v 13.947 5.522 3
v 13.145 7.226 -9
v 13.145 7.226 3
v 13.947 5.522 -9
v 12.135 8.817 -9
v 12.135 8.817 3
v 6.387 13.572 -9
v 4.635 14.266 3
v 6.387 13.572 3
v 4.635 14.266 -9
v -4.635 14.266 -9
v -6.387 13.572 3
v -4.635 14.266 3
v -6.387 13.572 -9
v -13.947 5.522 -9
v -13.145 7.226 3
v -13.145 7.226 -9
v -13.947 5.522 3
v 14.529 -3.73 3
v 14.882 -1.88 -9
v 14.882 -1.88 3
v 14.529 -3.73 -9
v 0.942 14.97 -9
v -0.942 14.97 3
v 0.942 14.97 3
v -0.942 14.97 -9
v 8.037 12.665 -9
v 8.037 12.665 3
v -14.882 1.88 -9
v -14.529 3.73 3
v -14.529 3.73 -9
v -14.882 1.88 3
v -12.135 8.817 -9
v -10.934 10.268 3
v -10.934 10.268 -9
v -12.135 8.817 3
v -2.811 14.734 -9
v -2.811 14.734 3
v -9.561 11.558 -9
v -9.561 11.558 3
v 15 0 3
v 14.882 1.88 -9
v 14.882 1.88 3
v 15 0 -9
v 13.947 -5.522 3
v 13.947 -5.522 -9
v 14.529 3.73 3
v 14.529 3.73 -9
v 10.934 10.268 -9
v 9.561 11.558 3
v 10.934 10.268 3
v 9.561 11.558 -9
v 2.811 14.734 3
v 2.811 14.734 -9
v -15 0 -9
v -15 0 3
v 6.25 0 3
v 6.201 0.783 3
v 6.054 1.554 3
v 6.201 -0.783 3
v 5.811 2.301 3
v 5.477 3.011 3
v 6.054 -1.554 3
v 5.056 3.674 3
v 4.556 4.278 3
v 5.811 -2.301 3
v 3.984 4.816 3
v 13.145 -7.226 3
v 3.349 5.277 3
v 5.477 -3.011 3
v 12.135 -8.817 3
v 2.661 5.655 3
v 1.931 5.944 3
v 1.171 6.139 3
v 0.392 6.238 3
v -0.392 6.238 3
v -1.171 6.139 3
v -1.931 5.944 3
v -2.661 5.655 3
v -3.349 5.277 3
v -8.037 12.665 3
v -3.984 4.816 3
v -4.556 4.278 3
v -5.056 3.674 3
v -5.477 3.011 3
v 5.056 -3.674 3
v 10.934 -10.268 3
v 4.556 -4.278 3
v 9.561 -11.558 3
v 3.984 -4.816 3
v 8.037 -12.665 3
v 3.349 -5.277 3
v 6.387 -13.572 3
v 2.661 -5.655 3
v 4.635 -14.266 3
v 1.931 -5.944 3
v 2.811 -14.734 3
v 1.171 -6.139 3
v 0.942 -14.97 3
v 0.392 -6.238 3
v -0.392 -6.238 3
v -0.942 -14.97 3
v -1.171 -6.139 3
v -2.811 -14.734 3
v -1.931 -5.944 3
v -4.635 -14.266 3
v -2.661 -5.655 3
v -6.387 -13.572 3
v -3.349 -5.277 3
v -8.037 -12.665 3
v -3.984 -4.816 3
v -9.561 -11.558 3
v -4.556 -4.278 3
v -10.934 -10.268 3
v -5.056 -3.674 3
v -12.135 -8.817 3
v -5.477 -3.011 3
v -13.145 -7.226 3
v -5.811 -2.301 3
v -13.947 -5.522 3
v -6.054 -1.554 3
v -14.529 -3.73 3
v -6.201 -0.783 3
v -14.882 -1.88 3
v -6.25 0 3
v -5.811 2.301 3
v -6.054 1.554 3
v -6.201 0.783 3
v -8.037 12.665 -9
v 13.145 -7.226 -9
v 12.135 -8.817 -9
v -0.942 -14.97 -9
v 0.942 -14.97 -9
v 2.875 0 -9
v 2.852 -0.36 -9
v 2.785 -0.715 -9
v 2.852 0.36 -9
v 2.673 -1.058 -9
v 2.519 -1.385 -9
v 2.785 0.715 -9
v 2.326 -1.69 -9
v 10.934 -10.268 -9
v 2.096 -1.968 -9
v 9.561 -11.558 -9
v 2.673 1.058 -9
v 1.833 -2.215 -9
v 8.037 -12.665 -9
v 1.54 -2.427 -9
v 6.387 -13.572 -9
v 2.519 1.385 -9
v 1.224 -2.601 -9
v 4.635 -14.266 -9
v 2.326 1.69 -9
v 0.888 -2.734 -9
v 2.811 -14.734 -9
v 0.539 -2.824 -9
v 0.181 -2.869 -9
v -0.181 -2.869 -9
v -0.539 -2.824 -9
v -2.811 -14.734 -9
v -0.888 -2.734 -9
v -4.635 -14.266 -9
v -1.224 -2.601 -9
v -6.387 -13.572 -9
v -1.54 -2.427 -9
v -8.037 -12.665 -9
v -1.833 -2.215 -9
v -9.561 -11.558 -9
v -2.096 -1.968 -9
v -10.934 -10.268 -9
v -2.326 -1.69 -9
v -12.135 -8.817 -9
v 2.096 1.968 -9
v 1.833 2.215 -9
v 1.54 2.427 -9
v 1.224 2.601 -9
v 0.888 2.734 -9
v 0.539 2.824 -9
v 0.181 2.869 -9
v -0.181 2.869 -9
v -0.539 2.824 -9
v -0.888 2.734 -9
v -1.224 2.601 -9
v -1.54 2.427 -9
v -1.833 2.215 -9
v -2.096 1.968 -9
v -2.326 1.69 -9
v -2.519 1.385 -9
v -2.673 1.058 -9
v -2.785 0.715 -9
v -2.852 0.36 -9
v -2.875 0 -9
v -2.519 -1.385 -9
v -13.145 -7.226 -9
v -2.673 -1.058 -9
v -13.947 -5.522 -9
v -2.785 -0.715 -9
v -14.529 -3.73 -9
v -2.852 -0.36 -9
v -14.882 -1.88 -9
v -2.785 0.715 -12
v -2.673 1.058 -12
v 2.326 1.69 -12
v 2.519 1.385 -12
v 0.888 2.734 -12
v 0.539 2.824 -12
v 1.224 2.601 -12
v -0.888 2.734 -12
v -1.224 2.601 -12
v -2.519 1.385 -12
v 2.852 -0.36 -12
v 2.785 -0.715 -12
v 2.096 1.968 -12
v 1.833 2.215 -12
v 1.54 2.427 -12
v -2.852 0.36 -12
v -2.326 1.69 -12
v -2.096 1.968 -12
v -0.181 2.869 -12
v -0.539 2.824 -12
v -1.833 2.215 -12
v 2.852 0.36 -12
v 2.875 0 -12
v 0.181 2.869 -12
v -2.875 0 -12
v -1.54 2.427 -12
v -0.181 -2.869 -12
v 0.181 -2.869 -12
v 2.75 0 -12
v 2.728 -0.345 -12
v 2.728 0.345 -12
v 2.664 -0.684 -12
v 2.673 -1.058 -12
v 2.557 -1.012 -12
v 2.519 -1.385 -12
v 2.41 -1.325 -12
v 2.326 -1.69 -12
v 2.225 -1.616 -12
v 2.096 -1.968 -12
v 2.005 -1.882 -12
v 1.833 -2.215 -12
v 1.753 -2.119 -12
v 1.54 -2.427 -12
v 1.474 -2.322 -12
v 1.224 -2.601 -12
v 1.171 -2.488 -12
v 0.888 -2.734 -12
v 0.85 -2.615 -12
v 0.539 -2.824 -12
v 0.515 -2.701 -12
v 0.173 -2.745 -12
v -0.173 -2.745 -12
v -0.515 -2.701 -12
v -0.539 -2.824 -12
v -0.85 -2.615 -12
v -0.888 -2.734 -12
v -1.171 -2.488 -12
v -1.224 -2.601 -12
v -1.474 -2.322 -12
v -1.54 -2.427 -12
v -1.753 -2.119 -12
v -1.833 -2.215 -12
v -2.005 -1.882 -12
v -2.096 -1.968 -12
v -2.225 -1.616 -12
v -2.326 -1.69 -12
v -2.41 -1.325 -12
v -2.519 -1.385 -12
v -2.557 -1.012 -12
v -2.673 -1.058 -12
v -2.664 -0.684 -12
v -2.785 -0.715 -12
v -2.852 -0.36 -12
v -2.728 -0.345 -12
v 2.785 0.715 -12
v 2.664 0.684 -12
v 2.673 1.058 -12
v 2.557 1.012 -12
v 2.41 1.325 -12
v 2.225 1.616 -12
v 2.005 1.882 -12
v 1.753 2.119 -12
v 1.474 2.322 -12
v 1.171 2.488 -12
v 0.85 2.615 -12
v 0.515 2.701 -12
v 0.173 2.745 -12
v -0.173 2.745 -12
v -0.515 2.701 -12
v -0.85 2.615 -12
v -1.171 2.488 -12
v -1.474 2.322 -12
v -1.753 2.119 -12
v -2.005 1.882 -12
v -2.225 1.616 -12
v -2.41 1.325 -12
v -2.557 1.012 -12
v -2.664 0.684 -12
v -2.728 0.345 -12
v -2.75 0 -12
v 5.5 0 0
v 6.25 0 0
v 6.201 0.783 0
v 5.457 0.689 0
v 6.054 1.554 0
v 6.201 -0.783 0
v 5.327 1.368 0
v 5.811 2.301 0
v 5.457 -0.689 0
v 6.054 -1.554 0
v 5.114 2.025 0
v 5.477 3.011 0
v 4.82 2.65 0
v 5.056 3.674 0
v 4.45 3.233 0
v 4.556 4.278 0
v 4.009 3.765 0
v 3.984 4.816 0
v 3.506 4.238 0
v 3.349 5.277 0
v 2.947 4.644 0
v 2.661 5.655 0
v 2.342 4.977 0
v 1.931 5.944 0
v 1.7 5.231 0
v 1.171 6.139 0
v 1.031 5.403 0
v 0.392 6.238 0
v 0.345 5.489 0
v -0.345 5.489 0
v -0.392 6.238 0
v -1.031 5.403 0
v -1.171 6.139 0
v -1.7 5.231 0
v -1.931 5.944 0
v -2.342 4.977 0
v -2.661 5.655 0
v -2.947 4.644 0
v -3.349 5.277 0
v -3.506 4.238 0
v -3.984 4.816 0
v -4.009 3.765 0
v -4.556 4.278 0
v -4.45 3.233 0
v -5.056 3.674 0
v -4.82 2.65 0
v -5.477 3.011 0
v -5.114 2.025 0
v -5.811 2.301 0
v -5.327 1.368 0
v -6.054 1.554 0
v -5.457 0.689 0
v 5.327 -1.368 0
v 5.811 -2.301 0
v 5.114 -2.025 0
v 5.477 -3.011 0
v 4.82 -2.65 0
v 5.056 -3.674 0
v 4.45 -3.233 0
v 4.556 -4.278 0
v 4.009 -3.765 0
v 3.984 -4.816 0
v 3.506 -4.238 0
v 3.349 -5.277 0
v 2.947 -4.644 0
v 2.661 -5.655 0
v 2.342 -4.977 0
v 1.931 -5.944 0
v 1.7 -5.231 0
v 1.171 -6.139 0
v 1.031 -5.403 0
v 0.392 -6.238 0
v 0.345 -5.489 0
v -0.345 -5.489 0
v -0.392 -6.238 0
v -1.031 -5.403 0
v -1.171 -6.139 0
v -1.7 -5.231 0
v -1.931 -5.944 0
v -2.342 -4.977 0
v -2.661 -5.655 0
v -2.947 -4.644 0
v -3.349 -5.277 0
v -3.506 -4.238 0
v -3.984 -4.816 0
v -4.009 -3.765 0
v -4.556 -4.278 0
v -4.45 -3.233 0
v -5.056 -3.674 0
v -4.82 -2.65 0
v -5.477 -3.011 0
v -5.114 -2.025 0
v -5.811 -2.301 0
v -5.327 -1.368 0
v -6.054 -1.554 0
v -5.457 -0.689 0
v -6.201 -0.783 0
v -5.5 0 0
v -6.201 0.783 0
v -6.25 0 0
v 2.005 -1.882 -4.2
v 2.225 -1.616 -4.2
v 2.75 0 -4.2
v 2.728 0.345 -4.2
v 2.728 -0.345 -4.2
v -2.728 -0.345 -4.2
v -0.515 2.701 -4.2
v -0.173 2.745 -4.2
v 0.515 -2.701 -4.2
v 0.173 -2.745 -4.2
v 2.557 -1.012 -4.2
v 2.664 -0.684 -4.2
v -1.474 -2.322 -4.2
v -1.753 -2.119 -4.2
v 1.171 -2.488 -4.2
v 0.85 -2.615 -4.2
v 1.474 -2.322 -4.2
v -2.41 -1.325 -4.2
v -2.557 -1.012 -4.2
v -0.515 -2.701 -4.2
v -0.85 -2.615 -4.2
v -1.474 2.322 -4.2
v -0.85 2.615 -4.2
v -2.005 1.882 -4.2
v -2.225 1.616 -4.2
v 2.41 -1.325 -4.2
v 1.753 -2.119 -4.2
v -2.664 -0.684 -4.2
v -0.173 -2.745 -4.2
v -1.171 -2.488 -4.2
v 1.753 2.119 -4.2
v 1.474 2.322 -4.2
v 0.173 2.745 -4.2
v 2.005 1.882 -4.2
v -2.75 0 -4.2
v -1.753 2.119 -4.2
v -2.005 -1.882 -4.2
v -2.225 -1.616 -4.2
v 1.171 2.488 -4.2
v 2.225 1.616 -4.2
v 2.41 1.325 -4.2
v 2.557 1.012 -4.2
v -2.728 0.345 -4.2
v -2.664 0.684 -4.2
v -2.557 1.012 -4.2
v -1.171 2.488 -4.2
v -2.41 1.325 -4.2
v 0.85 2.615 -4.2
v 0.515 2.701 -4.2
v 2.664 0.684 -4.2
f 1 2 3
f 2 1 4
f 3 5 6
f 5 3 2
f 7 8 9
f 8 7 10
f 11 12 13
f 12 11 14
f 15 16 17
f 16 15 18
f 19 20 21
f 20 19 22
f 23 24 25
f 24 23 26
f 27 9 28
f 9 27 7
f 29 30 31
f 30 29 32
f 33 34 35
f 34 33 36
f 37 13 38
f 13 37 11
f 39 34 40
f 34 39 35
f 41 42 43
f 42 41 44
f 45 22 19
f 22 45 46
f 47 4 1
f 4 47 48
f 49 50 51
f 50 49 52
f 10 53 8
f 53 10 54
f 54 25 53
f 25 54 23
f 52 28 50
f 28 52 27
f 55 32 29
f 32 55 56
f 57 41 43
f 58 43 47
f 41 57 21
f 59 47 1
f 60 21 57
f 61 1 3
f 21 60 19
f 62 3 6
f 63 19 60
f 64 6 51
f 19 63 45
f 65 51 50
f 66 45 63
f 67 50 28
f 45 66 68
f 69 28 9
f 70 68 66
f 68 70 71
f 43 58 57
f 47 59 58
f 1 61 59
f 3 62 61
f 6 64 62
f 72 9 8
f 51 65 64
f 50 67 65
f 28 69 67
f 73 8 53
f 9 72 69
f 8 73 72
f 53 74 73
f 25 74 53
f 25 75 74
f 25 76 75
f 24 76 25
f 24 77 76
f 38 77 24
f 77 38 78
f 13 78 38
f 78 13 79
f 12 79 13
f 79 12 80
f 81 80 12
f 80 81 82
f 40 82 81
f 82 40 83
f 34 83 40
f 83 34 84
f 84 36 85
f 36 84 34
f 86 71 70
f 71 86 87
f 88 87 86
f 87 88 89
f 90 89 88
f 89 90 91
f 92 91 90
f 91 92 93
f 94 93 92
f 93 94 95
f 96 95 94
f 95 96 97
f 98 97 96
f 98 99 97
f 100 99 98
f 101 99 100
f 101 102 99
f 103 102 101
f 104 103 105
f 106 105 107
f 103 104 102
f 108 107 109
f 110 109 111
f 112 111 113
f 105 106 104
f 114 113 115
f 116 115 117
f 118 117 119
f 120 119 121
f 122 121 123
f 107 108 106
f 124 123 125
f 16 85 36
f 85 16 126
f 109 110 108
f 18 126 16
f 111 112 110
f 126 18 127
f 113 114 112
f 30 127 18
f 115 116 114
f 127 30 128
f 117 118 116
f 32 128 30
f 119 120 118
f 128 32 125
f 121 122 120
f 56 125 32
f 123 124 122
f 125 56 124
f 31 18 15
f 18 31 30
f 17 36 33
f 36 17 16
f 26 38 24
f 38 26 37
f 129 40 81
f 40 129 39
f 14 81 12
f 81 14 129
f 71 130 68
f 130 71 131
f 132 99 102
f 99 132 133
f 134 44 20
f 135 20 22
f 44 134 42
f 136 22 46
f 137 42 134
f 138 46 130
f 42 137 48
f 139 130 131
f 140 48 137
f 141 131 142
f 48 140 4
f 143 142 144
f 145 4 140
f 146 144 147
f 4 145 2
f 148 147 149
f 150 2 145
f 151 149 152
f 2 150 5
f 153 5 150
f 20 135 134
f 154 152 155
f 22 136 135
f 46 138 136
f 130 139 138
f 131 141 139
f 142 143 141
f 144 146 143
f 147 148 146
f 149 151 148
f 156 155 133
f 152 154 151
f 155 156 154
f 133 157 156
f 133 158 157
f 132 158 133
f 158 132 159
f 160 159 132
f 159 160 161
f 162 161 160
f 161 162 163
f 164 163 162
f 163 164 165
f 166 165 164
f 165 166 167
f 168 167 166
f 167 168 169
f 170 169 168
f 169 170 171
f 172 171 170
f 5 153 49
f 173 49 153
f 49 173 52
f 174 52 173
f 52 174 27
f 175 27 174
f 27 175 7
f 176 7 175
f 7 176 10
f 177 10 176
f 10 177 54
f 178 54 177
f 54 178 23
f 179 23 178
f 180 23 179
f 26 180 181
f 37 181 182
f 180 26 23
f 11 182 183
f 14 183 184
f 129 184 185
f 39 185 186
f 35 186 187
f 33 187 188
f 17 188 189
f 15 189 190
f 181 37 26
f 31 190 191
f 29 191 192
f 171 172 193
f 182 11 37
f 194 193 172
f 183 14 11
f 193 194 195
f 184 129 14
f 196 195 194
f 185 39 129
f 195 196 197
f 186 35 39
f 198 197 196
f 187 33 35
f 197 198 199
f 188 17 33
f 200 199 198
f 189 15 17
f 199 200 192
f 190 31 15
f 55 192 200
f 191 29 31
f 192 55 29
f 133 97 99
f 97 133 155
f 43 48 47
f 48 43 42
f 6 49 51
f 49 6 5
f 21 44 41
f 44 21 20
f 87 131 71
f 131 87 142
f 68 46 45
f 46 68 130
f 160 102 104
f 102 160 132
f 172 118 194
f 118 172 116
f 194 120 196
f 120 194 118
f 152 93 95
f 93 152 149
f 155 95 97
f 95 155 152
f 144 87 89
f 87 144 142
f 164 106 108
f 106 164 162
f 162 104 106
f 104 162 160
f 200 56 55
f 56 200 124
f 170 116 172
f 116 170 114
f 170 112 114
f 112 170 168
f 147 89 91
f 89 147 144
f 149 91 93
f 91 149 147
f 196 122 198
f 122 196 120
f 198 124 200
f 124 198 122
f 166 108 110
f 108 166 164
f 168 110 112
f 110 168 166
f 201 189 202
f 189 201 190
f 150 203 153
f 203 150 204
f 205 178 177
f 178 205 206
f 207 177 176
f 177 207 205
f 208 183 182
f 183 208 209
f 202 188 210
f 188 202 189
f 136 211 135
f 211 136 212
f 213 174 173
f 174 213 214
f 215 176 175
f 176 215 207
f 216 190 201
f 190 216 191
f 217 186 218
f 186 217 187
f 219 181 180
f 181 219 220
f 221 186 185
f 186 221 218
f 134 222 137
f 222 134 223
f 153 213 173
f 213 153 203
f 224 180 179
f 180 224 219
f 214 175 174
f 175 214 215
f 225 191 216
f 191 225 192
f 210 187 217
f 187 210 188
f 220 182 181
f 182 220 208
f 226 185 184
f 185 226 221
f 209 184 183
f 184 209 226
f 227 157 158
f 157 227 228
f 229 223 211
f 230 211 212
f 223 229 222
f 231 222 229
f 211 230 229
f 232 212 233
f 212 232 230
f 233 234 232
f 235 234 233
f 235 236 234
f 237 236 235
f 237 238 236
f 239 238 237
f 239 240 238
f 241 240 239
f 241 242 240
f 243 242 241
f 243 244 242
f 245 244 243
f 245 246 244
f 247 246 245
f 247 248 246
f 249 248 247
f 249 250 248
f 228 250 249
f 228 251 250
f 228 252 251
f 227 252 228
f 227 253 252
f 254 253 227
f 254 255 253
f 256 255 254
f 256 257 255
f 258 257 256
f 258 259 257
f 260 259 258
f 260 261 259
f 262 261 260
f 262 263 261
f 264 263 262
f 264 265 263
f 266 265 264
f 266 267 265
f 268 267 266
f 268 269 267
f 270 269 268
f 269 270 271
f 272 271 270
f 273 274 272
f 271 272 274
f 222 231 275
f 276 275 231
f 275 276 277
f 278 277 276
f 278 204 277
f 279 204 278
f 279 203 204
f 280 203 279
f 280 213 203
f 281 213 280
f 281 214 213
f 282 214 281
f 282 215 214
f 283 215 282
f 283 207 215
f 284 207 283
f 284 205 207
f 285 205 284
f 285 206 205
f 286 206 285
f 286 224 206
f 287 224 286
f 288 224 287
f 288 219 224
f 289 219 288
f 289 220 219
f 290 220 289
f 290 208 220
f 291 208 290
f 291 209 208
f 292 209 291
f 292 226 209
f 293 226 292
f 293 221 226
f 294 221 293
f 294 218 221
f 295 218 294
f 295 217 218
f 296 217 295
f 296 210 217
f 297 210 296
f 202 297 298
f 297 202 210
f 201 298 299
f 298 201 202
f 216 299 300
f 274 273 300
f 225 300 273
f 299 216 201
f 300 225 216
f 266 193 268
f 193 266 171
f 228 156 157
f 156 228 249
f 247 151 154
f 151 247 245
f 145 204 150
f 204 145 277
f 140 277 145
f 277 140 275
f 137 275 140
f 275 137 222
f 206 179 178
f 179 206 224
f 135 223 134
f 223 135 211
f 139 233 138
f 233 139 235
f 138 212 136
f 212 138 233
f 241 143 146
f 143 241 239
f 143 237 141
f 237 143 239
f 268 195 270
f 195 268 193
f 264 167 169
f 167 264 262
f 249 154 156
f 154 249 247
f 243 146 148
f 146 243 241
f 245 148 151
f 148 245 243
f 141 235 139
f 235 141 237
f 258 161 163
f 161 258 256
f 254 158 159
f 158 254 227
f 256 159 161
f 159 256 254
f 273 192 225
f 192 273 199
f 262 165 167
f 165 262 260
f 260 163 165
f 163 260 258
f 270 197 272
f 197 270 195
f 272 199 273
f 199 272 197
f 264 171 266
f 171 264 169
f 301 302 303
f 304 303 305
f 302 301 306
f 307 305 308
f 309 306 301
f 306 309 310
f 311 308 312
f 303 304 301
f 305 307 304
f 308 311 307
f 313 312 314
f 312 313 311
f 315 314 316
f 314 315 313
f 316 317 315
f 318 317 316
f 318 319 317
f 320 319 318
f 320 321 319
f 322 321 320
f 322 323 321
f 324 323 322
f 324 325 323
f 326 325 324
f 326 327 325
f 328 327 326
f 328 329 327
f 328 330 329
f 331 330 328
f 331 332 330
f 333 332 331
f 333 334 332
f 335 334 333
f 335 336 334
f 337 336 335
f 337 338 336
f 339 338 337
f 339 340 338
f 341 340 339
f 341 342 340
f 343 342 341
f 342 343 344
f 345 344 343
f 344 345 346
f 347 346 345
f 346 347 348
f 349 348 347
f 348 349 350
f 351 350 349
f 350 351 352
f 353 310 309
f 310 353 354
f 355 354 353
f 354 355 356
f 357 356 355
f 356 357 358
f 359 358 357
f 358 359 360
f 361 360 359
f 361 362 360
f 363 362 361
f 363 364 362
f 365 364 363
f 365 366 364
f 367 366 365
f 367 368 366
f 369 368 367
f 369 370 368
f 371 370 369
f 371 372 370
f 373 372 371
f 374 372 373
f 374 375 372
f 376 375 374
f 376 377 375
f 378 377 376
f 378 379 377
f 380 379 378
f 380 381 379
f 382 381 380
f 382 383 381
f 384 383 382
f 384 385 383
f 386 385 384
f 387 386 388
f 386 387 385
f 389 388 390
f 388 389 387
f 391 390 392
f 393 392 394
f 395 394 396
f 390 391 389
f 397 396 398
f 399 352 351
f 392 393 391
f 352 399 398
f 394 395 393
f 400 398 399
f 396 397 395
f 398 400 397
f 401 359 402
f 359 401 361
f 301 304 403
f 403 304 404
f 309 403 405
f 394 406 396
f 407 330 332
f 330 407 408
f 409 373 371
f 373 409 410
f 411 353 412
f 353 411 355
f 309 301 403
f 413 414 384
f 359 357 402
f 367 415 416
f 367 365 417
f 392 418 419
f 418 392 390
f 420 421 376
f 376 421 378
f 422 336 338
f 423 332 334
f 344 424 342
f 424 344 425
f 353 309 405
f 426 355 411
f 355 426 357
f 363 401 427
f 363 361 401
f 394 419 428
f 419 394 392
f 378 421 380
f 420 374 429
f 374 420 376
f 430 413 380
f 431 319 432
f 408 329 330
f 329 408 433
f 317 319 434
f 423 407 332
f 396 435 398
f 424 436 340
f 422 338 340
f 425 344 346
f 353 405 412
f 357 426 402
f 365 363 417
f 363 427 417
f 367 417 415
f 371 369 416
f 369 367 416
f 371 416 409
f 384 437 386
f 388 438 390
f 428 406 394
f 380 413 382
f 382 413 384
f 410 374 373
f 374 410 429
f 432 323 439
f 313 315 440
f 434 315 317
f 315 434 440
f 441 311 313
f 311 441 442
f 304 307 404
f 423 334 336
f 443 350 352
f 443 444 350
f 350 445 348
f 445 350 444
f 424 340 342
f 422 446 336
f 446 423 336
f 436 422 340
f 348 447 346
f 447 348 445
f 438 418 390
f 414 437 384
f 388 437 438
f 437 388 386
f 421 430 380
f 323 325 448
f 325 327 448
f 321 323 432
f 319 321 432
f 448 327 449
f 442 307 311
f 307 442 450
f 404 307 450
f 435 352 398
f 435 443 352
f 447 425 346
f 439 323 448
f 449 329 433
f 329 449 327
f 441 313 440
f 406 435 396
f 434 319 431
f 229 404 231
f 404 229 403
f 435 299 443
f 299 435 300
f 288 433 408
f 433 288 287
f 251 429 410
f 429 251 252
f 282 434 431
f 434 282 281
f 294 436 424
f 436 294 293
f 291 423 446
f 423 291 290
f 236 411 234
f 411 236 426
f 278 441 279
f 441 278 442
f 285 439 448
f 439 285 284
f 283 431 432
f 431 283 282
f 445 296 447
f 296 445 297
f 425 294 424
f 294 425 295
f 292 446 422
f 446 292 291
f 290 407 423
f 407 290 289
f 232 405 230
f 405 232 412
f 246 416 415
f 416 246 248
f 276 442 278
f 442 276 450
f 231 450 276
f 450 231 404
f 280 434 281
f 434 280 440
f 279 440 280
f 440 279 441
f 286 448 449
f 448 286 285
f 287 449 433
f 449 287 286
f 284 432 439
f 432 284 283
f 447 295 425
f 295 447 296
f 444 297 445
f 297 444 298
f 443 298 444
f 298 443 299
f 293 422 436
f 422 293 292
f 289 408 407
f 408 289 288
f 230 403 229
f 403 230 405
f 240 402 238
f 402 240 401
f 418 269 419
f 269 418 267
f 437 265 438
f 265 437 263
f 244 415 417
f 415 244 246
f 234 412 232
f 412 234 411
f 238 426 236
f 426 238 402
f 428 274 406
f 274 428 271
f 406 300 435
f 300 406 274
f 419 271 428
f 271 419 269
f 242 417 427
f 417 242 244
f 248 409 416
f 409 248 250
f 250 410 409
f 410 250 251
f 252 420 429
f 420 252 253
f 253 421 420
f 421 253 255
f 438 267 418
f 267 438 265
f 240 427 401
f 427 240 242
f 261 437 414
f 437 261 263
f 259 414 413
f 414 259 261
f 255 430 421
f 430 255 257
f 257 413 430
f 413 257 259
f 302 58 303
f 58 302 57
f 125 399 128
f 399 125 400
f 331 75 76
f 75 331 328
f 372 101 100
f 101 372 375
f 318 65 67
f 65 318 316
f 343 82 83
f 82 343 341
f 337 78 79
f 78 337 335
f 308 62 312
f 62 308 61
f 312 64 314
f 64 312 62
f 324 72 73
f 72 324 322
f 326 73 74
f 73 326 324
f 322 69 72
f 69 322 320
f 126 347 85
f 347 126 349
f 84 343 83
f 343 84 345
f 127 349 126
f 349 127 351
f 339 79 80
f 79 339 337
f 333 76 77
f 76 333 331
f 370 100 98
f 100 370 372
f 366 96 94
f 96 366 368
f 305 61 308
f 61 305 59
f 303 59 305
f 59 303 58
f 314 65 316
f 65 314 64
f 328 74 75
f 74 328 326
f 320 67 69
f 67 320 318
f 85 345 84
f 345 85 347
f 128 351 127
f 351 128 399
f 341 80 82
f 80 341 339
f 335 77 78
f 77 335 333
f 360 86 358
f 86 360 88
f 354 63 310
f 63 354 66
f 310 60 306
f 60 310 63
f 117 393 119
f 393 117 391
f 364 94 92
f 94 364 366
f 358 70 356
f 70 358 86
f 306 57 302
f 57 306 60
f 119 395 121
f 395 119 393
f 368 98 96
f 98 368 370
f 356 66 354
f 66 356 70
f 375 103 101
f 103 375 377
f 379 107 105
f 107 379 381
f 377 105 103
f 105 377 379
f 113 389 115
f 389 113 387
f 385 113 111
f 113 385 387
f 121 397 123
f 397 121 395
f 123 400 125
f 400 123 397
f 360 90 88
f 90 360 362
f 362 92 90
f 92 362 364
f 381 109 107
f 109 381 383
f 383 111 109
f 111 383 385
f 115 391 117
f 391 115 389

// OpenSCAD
$fn = 50;

difference() {
	union() {
		translate(v = [0, 0, -9.0]) {
			cylinder(h = 12, r = 15.0);
		}
		#translate(v = [0, 0, -12.0]) {
			cylinder(h = 12, r = 2.875);
		}
	}
	union() {
		translate(v = [0, 0, 0]) {
			rotate(a = [0, 0, 0]) {
				difference() {
					union() {
						translate(v = [0, 0, -12.0]) {
							cylinder(h = 12, r = 2.25);
						}
						translate(v = [0, 0, -4.2]) {
							cylinder(h = 4.2, r1 = 2.75, r2 = 5.5);
						}
						translate(v = [0, 0, -12.0]) {
							cylinder(h = 12, r = 2.75);
						}
						translate(v = [0, 0, -12.0]) {
							cylinder(h = 12, r = 2.25);
						}
					}
					union();
				}
			}
		}
		#cylinder(h = 3, r = 6.25);
	}
}
